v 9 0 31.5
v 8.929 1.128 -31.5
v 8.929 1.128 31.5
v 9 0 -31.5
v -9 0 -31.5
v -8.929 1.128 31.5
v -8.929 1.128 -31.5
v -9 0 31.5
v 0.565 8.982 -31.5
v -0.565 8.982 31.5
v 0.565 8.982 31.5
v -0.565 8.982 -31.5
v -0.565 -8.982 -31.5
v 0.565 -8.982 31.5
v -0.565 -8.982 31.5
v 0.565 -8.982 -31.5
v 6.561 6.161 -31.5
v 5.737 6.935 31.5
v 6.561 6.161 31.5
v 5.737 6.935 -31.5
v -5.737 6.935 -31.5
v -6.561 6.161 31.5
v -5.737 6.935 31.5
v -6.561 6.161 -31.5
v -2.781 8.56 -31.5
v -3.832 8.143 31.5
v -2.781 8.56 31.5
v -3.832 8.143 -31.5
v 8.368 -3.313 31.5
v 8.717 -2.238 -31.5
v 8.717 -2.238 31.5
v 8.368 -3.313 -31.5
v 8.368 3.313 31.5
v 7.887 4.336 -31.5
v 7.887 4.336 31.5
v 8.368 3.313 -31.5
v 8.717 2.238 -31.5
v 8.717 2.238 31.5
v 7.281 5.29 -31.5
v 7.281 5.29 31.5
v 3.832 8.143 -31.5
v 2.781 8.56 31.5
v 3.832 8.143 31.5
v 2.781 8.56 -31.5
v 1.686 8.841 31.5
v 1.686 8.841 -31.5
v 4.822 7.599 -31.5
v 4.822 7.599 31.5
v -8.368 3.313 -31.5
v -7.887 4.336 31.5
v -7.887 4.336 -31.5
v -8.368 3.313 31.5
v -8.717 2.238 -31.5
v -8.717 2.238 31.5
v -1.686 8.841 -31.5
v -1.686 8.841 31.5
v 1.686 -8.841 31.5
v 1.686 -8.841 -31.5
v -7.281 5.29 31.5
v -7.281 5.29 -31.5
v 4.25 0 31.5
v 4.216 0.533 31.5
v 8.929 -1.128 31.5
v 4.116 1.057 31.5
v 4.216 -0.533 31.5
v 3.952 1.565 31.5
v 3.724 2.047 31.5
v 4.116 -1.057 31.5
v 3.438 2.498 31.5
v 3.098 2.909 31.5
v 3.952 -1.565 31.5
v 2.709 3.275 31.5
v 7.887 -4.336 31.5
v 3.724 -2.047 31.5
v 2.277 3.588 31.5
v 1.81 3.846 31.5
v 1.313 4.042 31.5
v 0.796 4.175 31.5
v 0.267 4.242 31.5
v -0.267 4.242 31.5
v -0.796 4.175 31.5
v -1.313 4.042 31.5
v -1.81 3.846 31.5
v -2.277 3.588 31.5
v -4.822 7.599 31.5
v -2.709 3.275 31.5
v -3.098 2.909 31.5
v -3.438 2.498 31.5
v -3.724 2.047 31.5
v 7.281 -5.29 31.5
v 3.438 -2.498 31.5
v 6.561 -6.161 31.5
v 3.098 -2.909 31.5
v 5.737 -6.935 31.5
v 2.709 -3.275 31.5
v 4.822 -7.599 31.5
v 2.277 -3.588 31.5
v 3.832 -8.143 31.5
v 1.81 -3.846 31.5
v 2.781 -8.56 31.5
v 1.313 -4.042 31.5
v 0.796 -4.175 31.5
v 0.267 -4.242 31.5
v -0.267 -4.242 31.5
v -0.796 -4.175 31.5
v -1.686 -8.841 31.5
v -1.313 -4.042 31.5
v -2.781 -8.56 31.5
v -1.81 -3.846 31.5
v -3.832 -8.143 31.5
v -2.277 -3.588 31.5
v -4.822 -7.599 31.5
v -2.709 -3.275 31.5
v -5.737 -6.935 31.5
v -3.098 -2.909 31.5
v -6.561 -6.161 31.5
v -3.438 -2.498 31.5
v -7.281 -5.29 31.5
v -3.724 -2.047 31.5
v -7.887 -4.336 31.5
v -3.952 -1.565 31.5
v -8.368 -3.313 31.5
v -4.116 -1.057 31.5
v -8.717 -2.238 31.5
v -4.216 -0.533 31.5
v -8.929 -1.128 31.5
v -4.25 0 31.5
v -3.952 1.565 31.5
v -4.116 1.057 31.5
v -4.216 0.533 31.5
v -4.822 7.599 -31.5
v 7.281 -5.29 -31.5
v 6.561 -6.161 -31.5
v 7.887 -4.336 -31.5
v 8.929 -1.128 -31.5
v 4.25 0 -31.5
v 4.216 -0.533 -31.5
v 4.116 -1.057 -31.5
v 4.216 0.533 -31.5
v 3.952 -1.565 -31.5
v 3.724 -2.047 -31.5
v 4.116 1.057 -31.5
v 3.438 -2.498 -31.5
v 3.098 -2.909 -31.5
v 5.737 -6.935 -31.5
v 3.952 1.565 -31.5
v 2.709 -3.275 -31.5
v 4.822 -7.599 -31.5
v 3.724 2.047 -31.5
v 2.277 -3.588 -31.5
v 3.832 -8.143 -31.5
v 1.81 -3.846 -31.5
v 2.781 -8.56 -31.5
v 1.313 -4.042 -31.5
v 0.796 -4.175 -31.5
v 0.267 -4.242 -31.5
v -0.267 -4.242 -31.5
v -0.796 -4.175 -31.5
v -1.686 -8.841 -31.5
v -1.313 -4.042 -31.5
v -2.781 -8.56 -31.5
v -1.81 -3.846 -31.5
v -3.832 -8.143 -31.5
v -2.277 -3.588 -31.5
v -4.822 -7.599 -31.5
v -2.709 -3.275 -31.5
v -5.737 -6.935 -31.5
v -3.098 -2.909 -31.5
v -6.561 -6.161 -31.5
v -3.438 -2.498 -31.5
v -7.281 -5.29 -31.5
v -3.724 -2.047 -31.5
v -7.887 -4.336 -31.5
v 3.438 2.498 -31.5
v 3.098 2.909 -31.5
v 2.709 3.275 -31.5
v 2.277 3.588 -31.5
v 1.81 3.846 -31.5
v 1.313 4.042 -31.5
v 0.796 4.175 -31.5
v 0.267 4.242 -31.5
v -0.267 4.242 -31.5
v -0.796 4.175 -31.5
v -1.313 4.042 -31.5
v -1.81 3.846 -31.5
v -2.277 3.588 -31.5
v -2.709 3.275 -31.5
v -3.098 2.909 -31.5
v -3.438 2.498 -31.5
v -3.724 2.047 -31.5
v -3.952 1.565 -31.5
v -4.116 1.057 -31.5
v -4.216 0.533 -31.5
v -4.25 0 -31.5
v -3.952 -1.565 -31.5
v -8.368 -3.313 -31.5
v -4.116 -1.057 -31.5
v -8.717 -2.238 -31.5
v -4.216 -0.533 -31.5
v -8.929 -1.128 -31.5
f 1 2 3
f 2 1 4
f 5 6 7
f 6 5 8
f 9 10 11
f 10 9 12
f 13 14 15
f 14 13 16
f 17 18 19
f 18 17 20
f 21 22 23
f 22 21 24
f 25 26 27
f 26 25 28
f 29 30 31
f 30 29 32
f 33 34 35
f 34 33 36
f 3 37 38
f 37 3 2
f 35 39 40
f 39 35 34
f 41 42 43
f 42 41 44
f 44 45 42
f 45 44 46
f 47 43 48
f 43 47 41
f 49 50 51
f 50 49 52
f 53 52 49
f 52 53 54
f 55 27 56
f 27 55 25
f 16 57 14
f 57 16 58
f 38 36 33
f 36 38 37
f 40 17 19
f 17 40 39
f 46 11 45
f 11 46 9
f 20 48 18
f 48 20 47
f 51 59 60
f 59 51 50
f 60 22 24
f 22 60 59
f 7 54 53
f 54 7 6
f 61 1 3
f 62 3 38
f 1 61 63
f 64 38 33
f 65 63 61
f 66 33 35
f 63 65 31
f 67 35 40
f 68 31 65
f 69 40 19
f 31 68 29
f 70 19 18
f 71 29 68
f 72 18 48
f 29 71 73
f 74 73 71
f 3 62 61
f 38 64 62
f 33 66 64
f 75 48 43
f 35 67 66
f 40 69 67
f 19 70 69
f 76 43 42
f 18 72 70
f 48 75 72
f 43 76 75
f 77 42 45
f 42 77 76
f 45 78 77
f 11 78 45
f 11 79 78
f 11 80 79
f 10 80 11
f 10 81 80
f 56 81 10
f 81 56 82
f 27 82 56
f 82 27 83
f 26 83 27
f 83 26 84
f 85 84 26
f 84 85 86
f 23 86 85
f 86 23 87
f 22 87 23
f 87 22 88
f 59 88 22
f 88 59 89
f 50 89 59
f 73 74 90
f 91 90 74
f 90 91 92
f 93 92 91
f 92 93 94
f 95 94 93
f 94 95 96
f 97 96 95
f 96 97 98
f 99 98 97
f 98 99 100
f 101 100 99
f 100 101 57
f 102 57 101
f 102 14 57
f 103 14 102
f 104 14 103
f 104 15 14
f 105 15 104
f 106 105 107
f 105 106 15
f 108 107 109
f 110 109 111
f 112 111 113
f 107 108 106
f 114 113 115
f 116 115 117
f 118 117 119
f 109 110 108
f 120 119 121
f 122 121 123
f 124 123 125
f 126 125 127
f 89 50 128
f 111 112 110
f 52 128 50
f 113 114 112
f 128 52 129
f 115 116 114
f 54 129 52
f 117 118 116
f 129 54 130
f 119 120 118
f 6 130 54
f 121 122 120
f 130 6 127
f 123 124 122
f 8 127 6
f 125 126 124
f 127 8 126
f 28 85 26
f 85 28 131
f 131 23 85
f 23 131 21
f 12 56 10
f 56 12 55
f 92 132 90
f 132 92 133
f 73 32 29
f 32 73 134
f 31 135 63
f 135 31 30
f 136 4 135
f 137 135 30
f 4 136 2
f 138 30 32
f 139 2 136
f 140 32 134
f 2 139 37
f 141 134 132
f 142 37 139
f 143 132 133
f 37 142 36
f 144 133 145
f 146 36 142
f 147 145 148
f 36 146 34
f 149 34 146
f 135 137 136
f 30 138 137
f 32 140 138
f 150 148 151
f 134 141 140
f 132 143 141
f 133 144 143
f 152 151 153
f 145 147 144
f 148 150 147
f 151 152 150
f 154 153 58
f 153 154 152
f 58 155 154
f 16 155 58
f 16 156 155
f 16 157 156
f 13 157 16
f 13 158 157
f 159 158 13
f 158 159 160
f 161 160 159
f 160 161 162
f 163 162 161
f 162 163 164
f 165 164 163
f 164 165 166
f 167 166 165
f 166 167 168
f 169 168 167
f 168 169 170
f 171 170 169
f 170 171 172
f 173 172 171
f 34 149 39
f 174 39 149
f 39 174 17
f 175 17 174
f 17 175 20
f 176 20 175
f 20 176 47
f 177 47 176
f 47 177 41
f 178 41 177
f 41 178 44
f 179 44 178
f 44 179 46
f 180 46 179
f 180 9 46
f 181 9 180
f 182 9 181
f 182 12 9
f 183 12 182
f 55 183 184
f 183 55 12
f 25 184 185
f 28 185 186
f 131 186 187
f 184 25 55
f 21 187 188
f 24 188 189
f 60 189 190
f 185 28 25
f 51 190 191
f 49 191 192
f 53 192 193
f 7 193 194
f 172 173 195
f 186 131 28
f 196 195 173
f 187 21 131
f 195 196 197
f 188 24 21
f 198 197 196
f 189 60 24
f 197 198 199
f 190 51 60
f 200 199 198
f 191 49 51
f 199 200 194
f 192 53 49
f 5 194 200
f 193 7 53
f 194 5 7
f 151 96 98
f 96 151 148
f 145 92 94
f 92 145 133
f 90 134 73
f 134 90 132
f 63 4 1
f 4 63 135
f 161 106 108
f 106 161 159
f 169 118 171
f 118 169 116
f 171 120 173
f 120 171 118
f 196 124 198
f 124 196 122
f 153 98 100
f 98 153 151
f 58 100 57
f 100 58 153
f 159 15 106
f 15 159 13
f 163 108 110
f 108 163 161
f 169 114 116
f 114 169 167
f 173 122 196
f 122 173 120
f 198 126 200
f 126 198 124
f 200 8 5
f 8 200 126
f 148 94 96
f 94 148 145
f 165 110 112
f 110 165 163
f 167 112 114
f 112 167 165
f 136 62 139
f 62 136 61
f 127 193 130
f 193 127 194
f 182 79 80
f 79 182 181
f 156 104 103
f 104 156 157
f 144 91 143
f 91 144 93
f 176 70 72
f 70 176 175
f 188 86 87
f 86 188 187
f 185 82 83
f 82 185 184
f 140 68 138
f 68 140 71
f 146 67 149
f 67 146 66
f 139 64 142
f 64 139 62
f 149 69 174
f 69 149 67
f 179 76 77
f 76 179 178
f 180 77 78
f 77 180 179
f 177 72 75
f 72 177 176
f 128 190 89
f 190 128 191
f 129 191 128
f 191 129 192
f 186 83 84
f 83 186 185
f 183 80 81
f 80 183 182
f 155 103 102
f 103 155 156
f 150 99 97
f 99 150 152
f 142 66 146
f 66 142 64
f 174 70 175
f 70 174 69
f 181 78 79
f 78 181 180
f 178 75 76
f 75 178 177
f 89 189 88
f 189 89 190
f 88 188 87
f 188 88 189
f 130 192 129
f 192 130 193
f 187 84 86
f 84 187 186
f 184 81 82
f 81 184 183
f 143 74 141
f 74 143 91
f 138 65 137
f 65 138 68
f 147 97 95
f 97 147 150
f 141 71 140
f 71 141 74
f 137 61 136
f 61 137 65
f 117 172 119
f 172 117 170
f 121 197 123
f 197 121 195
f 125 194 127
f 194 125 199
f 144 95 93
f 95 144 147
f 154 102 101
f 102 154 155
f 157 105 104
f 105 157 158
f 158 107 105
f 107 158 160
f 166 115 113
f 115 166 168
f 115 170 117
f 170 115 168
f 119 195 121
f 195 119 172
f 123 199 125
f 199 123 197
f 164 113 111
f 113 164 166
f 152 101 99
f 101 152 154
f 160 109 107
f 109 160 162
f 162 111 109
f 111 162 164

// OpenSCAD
$fn = 50;


difference() {
	union() {
		translate(v = [0, 0, -31.5000000000]) {
			cylinder(h = 63, r = 9.0000000000);
		}
	}
	union() {
		translate(v = [0, 0, -100.0000000000]) {
			cylinder(h = 200, r = 4.2500000000);
		}
	}
}
